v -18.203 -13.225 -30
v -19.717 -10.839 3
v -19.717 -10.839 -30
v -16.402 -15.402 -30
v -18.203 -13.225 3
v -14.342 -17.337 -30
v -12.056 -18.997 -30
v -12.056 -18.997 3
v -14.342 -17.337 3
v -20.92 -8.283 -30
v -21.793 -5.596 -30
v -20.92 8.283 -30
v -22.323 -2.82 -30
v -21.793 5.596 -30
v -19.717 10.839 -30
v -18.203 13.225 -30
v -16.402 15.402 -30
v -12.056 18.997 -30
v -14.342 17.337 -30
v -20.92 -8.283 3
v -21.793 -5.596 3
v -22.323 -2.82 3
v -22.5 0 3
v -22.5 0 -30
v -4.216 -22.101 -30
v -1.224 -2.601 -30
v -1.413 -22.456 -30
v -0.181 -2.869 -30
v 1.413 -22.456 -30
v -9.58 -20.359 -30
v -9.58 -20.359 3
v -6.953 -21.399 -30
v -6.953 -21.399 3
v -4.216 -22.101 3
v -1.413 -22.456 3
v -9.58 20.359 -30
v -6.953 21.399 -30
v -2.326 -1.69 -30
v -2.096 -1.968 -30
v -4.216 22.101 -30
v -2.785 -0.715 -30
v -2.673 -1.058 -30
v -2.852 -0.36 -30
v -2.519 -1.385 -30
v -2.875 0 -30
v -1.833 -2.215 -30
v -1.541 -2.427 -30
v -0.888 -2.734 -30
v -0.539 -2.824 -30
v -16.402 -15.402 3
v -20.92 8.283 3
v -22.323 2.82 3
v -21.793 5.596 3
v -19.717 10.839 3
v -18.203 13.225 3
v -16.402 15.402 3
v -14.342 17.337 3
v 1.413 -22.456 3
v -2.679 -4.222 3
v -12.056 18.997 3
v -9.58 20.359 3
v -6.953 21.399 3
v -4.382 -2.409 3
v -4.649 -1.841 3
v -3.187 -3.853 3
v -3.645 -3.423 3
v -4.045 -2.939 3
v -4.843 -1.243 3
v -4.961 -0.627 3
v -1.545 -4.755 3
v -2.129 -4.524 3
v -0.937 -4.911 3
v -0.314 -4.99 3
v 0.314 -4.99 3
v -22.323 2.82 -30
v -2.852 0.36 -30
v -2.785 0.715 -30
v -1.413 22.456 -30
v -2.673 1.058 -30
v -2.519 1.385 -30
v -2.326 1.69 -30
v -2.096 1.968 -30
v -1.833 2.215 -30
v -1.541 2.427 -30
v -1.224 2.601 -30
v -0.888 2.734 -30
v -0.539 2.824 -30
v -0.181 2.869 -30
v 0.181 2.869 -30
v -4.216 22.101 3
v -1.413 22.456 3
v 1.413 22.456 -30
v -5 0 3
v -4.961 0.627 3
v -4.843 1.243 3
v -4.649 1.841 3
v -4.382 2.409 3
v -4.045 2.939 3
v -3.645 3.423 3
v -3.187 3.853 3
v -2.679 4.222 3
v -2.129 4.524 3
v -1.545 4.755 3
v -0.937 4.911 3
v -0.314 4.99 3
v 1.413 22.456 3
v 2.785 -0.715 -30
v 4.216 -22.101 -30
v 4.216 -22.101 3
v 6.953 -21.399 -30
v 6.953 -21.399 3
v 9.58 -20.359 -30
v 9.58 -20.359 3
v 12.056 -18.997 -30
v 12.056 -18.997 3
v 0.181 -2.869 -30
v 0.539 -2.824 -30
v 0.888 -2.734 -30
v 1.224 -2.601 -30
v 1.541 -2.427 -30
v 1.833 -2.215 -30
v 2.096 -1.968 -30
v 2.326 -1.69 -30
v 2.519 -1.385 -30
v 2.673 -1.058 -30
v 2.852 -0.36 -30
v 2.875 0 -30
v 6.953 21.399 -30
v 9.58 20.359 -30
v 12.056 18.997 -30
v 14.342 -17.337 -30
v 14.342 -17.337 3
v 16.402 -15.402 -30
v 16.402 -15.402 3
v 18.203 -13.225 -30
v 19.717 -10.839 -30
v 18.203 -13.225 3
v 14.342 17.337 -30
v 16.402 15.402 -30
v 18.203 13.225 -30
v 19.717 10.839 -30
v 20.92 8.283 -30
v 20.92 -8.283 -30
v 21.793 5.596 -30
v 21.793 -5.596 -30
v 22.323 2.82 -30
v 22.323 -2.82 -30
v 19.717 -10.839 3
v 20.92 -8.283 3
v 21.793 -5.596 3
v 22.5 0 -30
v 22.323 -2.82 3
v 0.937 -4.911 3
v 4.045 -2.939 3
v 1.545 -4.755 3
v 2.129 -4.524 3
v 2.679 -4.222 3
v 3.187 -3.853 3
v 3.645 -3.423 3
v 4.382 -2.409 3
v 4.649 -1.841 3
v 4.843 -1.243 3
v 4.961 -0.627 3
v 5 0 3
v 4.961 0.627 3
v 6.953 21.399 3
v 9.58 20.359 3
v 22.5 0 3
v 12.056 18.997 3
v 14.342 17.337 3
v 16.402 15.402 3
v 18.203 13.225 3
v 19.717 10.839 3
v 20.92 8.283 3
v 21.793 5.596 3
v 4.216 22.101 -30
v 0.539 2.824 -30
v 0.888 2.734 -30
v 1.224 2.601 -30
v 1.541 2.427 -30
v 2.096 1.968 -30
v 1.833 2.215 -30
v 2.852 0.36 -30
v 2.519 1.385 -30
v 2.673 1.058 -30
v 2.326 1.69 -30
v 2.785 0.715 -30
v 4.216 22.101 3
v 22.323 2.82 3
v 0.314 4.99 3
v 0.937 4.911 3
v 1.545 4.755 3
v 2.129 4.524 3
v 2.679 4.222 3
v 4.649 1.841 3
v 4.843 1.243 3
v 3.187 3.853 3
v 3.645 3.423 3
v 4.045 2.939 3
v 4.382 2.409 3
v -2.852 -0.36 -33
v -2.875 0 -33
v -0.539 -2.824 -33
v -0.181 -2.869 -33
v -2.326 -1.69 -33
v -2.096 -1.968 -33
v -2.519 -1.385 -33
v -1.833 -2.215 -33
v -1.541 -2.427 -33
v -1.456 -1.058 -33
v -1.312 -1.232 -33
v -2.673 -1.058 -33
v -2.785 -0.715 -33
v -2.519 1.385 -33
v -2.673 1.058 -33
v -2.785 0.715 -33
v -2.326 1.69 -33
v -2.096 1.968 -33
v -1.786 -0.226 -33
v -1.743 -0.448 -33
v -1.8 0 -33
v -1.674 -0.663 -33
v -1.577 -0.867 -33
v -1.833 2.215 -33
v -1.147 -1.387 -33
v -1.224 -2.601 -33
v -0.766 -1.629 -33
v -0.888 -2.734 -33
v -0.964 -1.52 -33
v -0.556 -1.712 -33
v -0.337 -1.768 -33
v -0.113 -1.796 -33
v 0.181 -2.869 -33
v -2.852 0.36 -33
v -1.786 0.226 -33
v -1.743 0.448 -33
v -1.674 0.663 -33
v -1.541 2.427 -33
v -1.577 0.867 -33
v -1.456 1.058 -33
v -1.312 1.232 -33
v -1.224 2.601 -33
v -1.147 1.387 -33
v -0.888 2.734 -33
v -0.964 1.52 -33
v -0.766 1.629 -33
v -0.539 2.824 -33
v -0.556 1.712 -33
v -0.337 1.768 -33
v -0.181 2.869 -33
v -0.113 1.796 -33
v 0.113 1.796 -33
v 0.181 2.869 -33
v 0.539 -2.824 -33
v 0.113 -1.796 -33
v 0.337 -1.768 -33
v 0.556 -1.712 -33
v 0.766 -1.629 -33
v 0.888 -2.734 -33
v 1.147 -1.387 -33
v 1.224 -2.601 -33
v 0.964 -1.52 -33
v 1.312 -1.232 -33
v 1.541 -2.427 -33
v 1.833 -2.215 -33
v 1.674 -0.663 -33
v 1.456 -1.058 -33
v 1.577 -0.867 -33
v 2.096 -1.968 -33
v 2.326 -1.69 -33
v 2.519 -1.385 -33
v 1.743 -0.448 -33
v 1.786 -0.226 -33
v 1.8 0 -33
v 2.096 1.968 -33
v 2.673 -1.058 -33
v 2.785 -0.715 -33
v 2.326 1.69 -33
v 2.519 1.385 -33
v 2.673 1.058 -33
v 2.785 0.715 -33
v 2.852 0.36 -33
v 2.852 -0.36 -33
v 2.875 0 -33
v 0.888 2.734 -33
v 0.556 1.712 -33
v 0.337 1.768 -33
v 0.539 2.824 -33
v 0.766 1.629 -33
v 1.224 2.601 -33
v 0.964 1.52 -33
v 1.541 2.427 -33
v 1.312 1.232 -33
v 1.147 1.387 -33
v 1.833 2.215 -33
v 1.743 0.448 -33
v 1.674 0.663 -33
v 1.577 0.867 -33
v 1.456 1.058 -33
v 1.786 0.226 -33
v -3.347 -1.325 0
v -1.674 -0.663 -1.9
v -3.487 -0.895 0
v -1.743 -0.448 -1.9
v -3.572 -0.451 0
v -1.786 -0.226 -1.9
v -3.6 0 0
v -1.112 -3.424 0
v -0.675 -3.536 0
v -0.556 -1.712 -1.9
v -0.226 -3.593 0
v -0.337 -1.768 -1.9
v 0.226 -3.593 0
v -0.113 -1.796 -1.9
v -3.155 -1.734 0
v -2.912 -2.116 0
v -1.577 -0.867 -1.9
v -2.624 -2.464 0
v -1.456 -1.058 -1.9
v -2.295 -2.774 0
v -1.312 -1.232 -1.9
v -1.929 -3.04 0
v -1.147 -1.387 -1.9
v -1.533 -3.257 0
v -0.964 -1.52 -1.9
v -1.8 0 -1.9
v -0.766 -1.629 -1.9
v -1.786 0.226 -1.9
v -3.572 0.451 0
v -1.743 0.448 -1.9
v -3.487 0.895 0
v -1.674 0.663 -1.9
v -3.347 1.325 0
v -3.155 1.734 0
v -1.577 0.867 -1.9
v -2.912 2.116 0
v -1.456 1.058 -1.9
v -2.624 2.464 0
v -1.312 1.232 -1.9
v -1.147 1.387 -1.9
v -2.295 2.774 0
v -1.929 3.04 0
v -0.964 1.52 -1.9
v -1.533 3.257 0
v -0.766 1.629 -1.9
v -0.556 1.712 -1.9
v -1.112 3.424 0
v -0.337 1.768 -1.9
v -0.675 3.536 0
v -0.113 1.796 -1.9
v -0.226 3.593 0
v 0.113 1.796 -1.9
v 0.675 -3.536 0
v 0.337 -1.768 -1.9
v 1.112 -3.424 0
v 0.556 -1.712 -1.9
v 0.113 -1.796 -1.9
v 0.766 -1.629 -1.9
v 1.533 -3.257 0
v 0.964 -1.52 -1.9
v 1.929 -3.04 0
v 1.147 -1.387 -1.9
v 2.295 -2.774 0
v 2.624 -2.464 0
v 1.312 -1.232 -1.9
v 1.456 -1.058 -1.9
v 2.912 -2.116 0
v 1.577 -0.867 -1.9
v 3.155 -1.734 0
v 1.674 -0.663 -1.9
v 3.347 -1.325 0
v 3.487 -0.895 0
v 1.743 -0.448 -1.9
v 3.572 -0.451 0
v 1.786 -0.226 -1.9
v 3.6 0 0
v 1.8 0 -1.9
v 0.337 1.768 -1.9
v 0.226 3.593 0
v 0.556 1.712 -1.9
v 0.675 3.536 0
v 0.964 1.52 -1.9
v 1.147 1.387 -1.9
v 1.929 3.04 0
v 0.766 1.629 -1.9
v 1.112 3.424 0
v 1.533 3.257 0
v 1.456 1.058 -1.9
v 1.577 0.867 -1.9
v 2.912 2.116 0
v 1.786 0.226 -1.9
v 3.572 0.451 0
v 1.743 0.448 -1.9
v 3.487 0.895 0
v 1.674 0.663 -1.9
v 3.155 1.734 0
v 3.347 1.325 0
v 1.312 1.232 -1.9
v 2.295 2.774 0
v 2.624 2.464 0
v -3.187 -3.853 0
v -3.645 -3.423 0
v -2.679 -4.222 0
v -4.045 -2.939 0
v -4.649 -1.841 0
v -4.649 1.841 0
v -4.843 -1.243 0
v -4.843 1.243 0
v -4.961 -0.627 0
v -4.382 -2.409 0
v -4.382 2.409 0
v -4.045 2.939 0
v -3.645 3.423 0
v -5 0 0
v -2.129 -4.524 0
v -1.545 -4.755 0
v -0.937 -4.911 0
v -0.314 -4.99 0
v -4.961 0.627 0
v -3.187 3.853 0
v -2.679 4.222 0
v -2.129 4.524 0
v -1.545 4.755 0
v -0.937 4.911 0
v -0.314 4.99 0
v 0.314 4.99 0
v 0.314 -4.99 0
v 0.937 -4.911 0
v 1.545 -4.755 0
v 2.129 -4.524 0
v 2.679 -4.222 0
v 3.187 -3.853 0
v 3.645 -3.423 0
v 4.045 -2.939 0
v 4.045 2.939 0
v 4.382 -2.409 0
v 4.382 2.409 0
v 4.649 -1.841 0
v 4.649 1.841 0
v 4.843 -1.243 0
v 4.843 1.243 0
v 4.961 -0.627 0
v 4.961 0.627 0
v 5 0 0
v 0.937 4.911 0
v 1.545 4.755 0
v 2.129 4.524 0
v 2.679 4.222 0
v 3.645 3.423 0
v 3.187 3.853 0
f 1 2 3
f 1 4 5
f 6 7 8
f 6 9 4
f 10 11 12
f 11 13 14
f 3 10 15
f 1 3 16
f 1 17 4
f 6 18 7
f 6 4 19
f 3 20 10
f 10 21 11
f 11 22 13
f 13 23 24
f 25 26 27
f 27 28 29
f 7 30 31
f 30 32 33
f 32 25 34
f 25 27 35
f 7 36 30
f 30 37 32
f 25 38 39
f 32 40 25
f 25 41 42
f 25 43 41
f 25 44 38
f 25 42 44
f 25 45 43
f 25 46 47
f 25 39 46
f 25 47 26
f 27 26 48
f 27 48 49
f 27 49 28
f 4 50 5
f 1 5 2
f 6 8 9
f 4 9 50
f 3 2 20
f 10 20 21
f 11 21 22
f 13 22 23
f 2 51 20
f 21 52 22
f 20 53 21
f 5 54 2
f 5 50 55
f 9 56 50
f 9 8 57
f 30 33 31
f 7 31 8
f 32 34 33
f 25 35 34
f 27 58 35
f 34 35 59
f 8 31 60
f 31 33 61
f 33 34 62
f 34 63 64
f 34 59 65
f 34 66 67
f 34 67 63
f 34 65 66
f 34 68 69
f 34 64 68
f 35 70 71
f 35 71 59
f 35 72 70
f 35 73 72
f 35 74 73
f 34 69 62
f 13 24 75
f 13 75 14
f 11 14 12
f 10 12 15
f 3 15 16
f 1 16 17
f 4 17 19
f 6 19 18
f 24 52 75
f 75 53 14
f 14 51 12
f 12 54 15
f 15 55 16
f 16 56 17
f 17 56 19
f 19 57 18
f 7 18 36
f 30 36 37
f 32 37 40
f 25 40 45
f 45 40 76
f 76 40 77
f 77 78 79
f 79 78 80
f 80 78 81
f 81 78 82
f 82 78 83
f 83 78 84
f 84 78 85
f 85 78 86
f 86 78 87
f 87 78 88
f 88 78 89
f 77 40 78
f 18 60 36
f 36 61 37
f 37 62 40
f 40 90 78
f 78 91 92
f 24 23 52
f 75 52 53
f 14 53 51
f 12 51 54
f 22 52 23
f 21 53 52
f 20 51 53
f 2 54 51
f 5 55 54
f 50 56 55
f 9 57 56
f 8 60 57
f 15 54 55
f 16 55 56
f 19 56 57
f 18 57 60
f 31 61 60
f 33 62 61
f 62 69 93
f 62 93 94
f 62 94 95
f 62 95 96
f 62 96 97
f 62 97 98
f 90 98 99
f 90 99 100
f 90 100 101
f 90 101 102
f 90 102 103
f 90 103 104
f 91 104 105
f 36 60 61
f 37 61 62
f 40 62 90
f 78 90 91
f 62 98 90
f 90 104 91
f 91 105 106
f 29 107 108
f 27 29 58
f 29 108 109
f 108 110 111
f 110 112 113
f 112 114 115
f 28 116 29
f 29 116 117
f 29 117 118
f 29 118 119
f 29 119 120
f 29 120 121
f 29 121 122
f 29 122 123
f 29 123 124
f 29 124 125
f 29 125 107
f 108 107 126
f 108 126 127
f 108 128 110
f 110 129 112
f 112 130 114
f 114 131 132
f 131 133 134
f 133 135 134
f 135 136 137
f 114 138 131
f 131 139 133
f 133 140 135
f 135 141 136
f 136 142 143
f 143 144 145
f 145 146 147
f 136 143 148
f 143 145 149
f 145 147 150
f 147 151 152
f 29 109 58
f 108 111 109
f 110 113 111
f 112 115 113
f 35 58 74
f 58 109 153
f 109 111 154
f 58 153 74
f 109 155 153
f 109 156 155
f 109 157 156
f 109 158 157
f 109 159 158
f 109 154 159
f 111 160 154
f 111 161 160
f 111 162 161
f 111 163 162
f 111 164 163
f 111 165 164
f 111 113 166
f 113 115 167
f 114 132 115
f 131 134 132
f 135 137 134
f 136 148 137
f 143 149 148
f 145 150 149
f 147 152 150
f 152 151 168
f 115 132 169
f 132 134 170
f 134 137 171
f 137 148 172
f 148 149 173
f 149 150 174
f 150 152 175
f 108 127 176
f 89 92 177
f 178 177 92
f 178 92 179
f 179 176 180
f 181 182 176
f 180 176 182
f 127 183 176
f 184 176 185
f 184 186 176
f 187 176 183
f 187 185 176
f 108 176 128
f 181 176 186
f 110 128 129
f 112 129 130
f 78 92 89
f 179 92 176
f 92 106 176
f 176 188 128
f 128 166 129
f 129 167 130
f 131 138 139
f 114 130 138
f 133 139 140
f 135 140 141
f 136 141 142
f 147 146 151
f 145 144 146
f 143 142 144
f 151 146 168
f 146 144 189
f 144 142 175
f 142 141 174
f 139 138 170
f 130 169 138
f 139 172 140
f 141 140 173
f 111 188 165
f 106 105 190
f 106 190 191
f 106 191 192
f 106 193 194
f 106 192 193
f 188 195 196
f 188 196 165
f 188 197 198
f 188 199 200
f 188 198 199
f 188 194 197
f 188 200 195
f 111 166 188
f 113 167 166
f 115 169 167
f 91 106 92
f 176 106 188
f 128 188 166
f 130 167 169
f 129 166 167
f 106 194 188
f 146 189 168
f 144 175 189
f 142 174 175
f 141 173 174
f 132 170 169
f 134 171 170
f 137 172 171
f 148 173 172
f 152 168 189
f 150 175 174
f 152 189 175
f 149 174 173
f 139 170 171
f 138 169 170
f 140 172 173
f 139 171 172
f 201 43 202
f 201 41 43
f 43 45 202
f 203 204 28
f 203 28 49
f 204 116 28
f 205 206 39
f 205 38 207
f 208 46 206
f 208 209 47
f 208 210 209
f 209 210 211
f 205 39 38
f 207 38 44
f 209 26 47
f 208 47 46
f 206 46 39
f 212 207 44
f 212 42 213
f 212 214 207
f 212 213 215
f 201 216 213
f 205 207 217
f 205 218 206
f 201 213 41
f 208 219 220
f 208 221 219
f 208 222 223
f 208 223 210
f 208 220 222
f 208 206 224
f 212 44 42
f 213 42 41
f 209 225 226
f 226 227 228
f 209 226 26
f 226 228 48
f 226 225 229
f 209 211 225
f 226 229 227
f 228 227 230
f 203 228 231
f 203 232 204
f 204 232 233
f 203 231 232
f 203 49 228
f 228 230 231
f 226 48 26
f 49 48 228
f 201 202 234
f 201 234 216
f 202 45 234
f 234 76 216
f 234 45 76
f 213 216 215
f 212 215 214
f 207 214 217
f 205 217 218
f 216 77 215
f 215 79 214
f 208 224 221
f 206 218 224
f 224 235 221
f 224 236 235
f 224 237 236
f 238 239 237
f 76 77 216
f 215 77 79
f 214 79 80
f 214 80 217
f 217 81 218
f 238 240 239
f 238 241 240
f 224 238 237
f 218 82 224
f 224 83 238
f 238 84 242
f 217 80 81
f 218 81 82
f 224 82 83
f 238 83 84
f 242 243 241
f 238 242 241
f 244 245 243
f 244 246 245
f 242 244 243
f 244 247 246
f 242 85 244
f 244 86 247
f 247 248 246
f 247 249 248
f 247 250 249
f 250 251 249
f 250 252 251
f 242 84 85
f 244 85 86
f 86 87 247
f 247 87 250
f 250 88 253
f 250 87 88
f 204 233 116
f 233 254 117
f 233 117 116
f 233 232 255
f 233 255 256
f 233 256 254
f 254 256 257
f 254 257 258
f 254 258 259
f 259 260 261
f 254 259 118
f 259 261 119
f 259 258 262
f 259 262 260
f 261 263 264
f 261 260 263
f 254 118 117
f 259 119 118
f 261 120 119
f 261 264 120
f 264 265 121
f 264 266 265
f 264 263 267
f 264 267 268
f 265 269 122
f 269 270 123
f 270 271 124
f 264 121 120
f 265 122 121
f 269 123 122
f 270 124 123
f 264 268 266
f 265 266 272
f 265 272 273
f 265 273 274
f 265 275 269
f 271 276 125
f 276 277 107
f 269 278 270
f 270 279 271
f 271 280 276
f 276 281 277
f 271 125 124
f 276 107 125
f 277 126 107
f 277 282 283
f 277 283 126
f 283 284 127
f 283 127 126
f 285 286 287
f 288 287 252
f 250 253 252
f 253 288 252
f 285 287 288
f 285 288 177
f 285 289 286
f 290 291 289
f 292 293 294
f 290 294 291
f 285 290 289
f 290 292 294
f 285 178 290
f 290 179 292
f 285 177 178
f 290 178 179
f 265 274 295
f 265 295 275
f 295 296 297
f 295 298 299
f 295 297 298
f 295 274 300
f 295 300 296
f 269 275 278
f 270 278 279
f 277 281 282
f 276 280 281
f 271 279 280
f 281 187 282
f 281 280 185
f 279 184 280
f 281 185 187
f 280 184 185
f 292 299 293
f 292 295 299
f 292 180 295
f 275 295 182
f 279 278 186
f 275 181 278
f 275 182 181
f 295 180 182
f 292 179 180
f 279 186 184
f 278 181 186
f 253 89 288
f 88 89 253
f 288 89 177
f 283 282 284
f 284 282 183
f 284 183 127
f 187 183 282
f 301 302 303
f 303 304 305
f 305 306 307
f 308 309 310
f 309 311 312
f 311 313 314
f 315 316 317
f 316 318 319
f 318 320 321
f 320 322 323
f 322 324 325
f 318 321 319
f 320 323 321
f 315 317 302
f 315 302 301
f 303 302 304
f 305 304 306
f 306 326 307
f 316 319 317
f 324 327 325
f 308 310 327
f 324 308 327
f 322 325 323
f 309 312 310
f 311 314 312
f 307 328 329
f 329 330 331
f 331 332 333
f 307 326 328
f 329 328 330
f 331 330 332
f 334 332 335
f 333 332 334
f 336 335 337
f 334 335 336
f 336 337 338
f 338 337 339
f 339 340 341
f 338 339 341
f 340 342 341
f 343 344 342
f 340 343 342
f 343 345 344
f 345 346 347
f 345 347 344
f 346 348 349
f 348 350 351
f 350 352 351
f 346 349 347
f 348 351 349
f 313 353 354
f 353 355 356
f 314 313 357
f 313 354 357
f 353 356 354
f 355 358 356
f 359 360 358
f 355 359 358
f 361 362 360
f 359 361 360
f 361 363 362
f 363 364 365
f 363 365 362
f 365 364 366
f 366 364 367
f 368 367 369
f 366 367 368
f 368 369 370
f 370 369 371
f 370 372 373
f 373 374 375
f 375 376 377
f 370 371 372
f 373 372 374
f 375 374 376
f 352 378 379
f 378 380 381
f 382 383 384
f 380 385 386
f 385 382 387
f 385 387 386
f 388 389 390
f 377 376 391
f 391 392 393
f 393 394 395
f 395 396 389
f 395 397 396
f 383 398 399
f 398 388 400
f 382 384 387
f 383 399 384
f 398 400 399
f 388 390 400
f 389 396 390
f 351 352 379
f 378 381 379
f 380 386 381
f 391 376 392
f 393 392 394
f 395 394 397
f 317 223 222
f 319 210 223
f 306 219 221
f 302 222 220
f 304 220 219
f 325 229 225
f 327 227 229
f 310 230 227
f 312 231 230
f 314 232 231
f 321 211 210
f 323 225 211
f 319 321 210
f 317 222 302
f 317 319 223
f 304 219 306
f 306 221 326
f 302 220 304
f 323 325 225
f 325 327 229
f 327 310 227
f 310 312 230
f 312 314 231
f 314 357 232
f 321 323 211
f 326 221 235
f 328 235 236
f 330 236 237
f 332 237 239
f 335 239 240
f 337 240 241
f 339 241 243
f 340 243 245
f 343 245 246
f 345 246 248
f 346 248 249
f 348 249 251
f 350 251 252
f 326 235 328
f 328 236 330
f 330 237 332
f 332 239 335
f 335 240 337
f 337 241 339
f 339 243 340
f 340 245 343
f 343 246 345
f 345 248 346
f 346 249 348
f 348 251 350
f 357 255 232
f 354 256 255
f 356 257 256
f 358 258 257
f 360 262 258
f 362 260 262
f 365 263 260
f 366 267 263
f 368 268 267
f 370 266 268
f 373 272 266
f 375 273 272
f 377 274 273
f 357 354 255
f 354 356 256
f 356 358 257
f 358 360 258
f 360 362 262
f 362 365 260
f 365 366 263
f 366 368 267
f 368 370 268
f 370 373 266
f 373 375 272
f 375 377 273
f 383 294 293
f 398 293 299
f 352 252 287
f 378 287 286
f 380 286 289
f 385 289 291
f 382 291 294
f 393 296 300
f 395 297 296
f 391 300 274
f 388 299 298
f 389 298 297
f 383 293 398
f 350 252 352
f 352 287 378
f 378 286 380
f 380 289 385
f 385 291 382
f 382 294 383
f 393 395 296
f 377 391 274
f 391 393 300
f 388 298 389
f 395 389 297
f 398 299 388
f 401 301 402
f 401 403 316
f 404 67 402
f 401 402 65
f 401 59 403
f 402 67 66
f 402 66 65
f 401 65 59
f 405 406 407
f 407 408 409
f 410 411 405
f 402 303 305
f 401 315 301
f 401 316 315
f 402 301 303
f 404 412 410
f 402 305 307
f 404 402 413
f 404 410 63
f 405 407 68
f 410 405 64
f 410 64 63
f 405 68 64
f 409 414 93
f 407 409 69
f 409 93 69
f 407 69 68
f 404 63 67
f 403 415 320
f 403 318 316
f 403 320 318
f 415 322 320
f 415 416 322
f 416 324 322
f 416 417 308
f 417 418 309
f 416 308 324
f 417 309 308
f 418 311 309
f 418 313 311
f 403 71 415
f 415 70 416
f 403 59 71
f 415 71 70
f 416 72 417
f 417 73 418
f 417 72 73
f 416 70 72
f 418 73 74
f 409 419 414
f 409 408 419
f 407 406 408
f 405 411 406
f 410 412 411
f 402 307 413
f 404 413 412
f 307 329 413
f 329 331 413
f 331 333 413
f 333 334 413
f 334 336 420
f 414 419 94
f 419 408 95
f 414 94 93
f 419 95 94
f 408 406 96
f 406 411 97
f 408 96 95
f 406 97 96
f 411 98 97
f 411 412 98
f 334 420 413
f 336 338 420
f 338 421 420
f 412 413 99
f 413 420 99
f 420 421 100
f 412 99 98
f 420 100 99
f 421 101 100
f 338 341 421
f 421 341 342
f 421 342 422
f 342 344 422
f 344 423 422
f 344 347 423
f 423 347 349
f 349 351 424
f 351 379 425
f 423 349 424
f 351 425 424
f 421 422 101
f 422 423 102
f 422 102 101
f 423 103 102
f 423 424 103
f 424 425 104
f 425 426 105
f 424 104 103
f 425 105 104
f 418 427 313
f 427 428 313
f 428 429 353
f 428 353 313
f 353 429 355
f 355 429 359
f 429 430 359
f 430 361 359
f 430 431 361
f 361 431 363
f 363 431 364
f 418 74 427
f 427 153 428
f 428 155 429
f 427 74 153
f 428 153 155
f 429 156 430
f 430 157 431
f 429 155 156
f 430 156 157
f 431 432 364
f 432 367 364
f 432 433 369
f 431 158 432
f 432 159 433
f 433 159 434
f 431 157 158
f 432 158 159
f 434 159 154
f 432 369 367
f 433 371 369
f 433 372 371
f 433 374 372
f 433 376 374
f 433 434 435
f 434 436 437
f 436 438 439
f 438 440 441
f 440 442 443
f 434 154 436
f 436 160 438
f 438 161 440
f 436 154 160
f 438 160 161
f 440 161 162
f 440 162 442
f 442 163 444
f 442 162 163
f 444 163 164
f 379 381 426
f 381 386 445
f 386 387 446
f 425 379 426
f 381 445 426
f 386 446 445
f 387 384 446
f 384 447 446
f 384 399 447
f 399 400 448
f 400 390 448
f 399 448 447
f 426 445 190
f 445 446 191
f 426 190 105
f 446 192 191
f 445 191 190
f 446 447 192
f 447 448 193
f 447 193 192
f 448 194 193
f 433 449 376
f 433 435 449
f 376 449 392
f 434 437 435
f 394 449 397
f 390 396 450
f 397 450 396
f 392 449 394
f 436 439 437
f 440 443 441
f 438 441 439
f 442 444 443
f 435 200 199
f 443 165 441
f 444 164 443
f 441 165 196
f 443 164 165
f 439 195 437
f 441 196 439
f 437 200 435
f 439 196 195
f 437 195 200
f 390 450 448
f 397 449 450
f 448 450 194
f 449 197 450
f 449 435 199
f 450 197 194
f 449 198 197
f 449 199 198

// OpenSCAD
$fn = 50;


difference() {
	union() {
		translate(v = [0, 0, -30.0000000000]) {
			cylinder(h = 33, r = 22.5000000000);
		}
		#translate(v = [0, 0, -33.0000000000]) {
			cylinder(h = 33, r = 2.8750000000);
		}
	}
	union() {
		translate(v = [0, 0, 0]) {
			rotate(a = [0, 0, 0]) {
				difference() {
					union() {
						translate(v = [0, 0, -33.0000000000]) {
							cylinder(h = 33, r = 1.5000000000);
						}
						translate(v = [0, 0, -1.9000000000]) {
							cylinder(h = 1.9000000000, r1 = 1.8000000000, r2 = 3.6000000000);
						}
						translate(v = [0, 0, -33.0000000000]) {
							cylinder(h = 33, r = 1.8000000000);
						}
						translate(v = [0, 0, -33.0000000000]) {
							cylinder(h = 33, r = 1.5000000000);
						}
					}
					union();
				}
			}
		}
		#cylinder(h = 3, r = 5.0000000000);
	}
}
